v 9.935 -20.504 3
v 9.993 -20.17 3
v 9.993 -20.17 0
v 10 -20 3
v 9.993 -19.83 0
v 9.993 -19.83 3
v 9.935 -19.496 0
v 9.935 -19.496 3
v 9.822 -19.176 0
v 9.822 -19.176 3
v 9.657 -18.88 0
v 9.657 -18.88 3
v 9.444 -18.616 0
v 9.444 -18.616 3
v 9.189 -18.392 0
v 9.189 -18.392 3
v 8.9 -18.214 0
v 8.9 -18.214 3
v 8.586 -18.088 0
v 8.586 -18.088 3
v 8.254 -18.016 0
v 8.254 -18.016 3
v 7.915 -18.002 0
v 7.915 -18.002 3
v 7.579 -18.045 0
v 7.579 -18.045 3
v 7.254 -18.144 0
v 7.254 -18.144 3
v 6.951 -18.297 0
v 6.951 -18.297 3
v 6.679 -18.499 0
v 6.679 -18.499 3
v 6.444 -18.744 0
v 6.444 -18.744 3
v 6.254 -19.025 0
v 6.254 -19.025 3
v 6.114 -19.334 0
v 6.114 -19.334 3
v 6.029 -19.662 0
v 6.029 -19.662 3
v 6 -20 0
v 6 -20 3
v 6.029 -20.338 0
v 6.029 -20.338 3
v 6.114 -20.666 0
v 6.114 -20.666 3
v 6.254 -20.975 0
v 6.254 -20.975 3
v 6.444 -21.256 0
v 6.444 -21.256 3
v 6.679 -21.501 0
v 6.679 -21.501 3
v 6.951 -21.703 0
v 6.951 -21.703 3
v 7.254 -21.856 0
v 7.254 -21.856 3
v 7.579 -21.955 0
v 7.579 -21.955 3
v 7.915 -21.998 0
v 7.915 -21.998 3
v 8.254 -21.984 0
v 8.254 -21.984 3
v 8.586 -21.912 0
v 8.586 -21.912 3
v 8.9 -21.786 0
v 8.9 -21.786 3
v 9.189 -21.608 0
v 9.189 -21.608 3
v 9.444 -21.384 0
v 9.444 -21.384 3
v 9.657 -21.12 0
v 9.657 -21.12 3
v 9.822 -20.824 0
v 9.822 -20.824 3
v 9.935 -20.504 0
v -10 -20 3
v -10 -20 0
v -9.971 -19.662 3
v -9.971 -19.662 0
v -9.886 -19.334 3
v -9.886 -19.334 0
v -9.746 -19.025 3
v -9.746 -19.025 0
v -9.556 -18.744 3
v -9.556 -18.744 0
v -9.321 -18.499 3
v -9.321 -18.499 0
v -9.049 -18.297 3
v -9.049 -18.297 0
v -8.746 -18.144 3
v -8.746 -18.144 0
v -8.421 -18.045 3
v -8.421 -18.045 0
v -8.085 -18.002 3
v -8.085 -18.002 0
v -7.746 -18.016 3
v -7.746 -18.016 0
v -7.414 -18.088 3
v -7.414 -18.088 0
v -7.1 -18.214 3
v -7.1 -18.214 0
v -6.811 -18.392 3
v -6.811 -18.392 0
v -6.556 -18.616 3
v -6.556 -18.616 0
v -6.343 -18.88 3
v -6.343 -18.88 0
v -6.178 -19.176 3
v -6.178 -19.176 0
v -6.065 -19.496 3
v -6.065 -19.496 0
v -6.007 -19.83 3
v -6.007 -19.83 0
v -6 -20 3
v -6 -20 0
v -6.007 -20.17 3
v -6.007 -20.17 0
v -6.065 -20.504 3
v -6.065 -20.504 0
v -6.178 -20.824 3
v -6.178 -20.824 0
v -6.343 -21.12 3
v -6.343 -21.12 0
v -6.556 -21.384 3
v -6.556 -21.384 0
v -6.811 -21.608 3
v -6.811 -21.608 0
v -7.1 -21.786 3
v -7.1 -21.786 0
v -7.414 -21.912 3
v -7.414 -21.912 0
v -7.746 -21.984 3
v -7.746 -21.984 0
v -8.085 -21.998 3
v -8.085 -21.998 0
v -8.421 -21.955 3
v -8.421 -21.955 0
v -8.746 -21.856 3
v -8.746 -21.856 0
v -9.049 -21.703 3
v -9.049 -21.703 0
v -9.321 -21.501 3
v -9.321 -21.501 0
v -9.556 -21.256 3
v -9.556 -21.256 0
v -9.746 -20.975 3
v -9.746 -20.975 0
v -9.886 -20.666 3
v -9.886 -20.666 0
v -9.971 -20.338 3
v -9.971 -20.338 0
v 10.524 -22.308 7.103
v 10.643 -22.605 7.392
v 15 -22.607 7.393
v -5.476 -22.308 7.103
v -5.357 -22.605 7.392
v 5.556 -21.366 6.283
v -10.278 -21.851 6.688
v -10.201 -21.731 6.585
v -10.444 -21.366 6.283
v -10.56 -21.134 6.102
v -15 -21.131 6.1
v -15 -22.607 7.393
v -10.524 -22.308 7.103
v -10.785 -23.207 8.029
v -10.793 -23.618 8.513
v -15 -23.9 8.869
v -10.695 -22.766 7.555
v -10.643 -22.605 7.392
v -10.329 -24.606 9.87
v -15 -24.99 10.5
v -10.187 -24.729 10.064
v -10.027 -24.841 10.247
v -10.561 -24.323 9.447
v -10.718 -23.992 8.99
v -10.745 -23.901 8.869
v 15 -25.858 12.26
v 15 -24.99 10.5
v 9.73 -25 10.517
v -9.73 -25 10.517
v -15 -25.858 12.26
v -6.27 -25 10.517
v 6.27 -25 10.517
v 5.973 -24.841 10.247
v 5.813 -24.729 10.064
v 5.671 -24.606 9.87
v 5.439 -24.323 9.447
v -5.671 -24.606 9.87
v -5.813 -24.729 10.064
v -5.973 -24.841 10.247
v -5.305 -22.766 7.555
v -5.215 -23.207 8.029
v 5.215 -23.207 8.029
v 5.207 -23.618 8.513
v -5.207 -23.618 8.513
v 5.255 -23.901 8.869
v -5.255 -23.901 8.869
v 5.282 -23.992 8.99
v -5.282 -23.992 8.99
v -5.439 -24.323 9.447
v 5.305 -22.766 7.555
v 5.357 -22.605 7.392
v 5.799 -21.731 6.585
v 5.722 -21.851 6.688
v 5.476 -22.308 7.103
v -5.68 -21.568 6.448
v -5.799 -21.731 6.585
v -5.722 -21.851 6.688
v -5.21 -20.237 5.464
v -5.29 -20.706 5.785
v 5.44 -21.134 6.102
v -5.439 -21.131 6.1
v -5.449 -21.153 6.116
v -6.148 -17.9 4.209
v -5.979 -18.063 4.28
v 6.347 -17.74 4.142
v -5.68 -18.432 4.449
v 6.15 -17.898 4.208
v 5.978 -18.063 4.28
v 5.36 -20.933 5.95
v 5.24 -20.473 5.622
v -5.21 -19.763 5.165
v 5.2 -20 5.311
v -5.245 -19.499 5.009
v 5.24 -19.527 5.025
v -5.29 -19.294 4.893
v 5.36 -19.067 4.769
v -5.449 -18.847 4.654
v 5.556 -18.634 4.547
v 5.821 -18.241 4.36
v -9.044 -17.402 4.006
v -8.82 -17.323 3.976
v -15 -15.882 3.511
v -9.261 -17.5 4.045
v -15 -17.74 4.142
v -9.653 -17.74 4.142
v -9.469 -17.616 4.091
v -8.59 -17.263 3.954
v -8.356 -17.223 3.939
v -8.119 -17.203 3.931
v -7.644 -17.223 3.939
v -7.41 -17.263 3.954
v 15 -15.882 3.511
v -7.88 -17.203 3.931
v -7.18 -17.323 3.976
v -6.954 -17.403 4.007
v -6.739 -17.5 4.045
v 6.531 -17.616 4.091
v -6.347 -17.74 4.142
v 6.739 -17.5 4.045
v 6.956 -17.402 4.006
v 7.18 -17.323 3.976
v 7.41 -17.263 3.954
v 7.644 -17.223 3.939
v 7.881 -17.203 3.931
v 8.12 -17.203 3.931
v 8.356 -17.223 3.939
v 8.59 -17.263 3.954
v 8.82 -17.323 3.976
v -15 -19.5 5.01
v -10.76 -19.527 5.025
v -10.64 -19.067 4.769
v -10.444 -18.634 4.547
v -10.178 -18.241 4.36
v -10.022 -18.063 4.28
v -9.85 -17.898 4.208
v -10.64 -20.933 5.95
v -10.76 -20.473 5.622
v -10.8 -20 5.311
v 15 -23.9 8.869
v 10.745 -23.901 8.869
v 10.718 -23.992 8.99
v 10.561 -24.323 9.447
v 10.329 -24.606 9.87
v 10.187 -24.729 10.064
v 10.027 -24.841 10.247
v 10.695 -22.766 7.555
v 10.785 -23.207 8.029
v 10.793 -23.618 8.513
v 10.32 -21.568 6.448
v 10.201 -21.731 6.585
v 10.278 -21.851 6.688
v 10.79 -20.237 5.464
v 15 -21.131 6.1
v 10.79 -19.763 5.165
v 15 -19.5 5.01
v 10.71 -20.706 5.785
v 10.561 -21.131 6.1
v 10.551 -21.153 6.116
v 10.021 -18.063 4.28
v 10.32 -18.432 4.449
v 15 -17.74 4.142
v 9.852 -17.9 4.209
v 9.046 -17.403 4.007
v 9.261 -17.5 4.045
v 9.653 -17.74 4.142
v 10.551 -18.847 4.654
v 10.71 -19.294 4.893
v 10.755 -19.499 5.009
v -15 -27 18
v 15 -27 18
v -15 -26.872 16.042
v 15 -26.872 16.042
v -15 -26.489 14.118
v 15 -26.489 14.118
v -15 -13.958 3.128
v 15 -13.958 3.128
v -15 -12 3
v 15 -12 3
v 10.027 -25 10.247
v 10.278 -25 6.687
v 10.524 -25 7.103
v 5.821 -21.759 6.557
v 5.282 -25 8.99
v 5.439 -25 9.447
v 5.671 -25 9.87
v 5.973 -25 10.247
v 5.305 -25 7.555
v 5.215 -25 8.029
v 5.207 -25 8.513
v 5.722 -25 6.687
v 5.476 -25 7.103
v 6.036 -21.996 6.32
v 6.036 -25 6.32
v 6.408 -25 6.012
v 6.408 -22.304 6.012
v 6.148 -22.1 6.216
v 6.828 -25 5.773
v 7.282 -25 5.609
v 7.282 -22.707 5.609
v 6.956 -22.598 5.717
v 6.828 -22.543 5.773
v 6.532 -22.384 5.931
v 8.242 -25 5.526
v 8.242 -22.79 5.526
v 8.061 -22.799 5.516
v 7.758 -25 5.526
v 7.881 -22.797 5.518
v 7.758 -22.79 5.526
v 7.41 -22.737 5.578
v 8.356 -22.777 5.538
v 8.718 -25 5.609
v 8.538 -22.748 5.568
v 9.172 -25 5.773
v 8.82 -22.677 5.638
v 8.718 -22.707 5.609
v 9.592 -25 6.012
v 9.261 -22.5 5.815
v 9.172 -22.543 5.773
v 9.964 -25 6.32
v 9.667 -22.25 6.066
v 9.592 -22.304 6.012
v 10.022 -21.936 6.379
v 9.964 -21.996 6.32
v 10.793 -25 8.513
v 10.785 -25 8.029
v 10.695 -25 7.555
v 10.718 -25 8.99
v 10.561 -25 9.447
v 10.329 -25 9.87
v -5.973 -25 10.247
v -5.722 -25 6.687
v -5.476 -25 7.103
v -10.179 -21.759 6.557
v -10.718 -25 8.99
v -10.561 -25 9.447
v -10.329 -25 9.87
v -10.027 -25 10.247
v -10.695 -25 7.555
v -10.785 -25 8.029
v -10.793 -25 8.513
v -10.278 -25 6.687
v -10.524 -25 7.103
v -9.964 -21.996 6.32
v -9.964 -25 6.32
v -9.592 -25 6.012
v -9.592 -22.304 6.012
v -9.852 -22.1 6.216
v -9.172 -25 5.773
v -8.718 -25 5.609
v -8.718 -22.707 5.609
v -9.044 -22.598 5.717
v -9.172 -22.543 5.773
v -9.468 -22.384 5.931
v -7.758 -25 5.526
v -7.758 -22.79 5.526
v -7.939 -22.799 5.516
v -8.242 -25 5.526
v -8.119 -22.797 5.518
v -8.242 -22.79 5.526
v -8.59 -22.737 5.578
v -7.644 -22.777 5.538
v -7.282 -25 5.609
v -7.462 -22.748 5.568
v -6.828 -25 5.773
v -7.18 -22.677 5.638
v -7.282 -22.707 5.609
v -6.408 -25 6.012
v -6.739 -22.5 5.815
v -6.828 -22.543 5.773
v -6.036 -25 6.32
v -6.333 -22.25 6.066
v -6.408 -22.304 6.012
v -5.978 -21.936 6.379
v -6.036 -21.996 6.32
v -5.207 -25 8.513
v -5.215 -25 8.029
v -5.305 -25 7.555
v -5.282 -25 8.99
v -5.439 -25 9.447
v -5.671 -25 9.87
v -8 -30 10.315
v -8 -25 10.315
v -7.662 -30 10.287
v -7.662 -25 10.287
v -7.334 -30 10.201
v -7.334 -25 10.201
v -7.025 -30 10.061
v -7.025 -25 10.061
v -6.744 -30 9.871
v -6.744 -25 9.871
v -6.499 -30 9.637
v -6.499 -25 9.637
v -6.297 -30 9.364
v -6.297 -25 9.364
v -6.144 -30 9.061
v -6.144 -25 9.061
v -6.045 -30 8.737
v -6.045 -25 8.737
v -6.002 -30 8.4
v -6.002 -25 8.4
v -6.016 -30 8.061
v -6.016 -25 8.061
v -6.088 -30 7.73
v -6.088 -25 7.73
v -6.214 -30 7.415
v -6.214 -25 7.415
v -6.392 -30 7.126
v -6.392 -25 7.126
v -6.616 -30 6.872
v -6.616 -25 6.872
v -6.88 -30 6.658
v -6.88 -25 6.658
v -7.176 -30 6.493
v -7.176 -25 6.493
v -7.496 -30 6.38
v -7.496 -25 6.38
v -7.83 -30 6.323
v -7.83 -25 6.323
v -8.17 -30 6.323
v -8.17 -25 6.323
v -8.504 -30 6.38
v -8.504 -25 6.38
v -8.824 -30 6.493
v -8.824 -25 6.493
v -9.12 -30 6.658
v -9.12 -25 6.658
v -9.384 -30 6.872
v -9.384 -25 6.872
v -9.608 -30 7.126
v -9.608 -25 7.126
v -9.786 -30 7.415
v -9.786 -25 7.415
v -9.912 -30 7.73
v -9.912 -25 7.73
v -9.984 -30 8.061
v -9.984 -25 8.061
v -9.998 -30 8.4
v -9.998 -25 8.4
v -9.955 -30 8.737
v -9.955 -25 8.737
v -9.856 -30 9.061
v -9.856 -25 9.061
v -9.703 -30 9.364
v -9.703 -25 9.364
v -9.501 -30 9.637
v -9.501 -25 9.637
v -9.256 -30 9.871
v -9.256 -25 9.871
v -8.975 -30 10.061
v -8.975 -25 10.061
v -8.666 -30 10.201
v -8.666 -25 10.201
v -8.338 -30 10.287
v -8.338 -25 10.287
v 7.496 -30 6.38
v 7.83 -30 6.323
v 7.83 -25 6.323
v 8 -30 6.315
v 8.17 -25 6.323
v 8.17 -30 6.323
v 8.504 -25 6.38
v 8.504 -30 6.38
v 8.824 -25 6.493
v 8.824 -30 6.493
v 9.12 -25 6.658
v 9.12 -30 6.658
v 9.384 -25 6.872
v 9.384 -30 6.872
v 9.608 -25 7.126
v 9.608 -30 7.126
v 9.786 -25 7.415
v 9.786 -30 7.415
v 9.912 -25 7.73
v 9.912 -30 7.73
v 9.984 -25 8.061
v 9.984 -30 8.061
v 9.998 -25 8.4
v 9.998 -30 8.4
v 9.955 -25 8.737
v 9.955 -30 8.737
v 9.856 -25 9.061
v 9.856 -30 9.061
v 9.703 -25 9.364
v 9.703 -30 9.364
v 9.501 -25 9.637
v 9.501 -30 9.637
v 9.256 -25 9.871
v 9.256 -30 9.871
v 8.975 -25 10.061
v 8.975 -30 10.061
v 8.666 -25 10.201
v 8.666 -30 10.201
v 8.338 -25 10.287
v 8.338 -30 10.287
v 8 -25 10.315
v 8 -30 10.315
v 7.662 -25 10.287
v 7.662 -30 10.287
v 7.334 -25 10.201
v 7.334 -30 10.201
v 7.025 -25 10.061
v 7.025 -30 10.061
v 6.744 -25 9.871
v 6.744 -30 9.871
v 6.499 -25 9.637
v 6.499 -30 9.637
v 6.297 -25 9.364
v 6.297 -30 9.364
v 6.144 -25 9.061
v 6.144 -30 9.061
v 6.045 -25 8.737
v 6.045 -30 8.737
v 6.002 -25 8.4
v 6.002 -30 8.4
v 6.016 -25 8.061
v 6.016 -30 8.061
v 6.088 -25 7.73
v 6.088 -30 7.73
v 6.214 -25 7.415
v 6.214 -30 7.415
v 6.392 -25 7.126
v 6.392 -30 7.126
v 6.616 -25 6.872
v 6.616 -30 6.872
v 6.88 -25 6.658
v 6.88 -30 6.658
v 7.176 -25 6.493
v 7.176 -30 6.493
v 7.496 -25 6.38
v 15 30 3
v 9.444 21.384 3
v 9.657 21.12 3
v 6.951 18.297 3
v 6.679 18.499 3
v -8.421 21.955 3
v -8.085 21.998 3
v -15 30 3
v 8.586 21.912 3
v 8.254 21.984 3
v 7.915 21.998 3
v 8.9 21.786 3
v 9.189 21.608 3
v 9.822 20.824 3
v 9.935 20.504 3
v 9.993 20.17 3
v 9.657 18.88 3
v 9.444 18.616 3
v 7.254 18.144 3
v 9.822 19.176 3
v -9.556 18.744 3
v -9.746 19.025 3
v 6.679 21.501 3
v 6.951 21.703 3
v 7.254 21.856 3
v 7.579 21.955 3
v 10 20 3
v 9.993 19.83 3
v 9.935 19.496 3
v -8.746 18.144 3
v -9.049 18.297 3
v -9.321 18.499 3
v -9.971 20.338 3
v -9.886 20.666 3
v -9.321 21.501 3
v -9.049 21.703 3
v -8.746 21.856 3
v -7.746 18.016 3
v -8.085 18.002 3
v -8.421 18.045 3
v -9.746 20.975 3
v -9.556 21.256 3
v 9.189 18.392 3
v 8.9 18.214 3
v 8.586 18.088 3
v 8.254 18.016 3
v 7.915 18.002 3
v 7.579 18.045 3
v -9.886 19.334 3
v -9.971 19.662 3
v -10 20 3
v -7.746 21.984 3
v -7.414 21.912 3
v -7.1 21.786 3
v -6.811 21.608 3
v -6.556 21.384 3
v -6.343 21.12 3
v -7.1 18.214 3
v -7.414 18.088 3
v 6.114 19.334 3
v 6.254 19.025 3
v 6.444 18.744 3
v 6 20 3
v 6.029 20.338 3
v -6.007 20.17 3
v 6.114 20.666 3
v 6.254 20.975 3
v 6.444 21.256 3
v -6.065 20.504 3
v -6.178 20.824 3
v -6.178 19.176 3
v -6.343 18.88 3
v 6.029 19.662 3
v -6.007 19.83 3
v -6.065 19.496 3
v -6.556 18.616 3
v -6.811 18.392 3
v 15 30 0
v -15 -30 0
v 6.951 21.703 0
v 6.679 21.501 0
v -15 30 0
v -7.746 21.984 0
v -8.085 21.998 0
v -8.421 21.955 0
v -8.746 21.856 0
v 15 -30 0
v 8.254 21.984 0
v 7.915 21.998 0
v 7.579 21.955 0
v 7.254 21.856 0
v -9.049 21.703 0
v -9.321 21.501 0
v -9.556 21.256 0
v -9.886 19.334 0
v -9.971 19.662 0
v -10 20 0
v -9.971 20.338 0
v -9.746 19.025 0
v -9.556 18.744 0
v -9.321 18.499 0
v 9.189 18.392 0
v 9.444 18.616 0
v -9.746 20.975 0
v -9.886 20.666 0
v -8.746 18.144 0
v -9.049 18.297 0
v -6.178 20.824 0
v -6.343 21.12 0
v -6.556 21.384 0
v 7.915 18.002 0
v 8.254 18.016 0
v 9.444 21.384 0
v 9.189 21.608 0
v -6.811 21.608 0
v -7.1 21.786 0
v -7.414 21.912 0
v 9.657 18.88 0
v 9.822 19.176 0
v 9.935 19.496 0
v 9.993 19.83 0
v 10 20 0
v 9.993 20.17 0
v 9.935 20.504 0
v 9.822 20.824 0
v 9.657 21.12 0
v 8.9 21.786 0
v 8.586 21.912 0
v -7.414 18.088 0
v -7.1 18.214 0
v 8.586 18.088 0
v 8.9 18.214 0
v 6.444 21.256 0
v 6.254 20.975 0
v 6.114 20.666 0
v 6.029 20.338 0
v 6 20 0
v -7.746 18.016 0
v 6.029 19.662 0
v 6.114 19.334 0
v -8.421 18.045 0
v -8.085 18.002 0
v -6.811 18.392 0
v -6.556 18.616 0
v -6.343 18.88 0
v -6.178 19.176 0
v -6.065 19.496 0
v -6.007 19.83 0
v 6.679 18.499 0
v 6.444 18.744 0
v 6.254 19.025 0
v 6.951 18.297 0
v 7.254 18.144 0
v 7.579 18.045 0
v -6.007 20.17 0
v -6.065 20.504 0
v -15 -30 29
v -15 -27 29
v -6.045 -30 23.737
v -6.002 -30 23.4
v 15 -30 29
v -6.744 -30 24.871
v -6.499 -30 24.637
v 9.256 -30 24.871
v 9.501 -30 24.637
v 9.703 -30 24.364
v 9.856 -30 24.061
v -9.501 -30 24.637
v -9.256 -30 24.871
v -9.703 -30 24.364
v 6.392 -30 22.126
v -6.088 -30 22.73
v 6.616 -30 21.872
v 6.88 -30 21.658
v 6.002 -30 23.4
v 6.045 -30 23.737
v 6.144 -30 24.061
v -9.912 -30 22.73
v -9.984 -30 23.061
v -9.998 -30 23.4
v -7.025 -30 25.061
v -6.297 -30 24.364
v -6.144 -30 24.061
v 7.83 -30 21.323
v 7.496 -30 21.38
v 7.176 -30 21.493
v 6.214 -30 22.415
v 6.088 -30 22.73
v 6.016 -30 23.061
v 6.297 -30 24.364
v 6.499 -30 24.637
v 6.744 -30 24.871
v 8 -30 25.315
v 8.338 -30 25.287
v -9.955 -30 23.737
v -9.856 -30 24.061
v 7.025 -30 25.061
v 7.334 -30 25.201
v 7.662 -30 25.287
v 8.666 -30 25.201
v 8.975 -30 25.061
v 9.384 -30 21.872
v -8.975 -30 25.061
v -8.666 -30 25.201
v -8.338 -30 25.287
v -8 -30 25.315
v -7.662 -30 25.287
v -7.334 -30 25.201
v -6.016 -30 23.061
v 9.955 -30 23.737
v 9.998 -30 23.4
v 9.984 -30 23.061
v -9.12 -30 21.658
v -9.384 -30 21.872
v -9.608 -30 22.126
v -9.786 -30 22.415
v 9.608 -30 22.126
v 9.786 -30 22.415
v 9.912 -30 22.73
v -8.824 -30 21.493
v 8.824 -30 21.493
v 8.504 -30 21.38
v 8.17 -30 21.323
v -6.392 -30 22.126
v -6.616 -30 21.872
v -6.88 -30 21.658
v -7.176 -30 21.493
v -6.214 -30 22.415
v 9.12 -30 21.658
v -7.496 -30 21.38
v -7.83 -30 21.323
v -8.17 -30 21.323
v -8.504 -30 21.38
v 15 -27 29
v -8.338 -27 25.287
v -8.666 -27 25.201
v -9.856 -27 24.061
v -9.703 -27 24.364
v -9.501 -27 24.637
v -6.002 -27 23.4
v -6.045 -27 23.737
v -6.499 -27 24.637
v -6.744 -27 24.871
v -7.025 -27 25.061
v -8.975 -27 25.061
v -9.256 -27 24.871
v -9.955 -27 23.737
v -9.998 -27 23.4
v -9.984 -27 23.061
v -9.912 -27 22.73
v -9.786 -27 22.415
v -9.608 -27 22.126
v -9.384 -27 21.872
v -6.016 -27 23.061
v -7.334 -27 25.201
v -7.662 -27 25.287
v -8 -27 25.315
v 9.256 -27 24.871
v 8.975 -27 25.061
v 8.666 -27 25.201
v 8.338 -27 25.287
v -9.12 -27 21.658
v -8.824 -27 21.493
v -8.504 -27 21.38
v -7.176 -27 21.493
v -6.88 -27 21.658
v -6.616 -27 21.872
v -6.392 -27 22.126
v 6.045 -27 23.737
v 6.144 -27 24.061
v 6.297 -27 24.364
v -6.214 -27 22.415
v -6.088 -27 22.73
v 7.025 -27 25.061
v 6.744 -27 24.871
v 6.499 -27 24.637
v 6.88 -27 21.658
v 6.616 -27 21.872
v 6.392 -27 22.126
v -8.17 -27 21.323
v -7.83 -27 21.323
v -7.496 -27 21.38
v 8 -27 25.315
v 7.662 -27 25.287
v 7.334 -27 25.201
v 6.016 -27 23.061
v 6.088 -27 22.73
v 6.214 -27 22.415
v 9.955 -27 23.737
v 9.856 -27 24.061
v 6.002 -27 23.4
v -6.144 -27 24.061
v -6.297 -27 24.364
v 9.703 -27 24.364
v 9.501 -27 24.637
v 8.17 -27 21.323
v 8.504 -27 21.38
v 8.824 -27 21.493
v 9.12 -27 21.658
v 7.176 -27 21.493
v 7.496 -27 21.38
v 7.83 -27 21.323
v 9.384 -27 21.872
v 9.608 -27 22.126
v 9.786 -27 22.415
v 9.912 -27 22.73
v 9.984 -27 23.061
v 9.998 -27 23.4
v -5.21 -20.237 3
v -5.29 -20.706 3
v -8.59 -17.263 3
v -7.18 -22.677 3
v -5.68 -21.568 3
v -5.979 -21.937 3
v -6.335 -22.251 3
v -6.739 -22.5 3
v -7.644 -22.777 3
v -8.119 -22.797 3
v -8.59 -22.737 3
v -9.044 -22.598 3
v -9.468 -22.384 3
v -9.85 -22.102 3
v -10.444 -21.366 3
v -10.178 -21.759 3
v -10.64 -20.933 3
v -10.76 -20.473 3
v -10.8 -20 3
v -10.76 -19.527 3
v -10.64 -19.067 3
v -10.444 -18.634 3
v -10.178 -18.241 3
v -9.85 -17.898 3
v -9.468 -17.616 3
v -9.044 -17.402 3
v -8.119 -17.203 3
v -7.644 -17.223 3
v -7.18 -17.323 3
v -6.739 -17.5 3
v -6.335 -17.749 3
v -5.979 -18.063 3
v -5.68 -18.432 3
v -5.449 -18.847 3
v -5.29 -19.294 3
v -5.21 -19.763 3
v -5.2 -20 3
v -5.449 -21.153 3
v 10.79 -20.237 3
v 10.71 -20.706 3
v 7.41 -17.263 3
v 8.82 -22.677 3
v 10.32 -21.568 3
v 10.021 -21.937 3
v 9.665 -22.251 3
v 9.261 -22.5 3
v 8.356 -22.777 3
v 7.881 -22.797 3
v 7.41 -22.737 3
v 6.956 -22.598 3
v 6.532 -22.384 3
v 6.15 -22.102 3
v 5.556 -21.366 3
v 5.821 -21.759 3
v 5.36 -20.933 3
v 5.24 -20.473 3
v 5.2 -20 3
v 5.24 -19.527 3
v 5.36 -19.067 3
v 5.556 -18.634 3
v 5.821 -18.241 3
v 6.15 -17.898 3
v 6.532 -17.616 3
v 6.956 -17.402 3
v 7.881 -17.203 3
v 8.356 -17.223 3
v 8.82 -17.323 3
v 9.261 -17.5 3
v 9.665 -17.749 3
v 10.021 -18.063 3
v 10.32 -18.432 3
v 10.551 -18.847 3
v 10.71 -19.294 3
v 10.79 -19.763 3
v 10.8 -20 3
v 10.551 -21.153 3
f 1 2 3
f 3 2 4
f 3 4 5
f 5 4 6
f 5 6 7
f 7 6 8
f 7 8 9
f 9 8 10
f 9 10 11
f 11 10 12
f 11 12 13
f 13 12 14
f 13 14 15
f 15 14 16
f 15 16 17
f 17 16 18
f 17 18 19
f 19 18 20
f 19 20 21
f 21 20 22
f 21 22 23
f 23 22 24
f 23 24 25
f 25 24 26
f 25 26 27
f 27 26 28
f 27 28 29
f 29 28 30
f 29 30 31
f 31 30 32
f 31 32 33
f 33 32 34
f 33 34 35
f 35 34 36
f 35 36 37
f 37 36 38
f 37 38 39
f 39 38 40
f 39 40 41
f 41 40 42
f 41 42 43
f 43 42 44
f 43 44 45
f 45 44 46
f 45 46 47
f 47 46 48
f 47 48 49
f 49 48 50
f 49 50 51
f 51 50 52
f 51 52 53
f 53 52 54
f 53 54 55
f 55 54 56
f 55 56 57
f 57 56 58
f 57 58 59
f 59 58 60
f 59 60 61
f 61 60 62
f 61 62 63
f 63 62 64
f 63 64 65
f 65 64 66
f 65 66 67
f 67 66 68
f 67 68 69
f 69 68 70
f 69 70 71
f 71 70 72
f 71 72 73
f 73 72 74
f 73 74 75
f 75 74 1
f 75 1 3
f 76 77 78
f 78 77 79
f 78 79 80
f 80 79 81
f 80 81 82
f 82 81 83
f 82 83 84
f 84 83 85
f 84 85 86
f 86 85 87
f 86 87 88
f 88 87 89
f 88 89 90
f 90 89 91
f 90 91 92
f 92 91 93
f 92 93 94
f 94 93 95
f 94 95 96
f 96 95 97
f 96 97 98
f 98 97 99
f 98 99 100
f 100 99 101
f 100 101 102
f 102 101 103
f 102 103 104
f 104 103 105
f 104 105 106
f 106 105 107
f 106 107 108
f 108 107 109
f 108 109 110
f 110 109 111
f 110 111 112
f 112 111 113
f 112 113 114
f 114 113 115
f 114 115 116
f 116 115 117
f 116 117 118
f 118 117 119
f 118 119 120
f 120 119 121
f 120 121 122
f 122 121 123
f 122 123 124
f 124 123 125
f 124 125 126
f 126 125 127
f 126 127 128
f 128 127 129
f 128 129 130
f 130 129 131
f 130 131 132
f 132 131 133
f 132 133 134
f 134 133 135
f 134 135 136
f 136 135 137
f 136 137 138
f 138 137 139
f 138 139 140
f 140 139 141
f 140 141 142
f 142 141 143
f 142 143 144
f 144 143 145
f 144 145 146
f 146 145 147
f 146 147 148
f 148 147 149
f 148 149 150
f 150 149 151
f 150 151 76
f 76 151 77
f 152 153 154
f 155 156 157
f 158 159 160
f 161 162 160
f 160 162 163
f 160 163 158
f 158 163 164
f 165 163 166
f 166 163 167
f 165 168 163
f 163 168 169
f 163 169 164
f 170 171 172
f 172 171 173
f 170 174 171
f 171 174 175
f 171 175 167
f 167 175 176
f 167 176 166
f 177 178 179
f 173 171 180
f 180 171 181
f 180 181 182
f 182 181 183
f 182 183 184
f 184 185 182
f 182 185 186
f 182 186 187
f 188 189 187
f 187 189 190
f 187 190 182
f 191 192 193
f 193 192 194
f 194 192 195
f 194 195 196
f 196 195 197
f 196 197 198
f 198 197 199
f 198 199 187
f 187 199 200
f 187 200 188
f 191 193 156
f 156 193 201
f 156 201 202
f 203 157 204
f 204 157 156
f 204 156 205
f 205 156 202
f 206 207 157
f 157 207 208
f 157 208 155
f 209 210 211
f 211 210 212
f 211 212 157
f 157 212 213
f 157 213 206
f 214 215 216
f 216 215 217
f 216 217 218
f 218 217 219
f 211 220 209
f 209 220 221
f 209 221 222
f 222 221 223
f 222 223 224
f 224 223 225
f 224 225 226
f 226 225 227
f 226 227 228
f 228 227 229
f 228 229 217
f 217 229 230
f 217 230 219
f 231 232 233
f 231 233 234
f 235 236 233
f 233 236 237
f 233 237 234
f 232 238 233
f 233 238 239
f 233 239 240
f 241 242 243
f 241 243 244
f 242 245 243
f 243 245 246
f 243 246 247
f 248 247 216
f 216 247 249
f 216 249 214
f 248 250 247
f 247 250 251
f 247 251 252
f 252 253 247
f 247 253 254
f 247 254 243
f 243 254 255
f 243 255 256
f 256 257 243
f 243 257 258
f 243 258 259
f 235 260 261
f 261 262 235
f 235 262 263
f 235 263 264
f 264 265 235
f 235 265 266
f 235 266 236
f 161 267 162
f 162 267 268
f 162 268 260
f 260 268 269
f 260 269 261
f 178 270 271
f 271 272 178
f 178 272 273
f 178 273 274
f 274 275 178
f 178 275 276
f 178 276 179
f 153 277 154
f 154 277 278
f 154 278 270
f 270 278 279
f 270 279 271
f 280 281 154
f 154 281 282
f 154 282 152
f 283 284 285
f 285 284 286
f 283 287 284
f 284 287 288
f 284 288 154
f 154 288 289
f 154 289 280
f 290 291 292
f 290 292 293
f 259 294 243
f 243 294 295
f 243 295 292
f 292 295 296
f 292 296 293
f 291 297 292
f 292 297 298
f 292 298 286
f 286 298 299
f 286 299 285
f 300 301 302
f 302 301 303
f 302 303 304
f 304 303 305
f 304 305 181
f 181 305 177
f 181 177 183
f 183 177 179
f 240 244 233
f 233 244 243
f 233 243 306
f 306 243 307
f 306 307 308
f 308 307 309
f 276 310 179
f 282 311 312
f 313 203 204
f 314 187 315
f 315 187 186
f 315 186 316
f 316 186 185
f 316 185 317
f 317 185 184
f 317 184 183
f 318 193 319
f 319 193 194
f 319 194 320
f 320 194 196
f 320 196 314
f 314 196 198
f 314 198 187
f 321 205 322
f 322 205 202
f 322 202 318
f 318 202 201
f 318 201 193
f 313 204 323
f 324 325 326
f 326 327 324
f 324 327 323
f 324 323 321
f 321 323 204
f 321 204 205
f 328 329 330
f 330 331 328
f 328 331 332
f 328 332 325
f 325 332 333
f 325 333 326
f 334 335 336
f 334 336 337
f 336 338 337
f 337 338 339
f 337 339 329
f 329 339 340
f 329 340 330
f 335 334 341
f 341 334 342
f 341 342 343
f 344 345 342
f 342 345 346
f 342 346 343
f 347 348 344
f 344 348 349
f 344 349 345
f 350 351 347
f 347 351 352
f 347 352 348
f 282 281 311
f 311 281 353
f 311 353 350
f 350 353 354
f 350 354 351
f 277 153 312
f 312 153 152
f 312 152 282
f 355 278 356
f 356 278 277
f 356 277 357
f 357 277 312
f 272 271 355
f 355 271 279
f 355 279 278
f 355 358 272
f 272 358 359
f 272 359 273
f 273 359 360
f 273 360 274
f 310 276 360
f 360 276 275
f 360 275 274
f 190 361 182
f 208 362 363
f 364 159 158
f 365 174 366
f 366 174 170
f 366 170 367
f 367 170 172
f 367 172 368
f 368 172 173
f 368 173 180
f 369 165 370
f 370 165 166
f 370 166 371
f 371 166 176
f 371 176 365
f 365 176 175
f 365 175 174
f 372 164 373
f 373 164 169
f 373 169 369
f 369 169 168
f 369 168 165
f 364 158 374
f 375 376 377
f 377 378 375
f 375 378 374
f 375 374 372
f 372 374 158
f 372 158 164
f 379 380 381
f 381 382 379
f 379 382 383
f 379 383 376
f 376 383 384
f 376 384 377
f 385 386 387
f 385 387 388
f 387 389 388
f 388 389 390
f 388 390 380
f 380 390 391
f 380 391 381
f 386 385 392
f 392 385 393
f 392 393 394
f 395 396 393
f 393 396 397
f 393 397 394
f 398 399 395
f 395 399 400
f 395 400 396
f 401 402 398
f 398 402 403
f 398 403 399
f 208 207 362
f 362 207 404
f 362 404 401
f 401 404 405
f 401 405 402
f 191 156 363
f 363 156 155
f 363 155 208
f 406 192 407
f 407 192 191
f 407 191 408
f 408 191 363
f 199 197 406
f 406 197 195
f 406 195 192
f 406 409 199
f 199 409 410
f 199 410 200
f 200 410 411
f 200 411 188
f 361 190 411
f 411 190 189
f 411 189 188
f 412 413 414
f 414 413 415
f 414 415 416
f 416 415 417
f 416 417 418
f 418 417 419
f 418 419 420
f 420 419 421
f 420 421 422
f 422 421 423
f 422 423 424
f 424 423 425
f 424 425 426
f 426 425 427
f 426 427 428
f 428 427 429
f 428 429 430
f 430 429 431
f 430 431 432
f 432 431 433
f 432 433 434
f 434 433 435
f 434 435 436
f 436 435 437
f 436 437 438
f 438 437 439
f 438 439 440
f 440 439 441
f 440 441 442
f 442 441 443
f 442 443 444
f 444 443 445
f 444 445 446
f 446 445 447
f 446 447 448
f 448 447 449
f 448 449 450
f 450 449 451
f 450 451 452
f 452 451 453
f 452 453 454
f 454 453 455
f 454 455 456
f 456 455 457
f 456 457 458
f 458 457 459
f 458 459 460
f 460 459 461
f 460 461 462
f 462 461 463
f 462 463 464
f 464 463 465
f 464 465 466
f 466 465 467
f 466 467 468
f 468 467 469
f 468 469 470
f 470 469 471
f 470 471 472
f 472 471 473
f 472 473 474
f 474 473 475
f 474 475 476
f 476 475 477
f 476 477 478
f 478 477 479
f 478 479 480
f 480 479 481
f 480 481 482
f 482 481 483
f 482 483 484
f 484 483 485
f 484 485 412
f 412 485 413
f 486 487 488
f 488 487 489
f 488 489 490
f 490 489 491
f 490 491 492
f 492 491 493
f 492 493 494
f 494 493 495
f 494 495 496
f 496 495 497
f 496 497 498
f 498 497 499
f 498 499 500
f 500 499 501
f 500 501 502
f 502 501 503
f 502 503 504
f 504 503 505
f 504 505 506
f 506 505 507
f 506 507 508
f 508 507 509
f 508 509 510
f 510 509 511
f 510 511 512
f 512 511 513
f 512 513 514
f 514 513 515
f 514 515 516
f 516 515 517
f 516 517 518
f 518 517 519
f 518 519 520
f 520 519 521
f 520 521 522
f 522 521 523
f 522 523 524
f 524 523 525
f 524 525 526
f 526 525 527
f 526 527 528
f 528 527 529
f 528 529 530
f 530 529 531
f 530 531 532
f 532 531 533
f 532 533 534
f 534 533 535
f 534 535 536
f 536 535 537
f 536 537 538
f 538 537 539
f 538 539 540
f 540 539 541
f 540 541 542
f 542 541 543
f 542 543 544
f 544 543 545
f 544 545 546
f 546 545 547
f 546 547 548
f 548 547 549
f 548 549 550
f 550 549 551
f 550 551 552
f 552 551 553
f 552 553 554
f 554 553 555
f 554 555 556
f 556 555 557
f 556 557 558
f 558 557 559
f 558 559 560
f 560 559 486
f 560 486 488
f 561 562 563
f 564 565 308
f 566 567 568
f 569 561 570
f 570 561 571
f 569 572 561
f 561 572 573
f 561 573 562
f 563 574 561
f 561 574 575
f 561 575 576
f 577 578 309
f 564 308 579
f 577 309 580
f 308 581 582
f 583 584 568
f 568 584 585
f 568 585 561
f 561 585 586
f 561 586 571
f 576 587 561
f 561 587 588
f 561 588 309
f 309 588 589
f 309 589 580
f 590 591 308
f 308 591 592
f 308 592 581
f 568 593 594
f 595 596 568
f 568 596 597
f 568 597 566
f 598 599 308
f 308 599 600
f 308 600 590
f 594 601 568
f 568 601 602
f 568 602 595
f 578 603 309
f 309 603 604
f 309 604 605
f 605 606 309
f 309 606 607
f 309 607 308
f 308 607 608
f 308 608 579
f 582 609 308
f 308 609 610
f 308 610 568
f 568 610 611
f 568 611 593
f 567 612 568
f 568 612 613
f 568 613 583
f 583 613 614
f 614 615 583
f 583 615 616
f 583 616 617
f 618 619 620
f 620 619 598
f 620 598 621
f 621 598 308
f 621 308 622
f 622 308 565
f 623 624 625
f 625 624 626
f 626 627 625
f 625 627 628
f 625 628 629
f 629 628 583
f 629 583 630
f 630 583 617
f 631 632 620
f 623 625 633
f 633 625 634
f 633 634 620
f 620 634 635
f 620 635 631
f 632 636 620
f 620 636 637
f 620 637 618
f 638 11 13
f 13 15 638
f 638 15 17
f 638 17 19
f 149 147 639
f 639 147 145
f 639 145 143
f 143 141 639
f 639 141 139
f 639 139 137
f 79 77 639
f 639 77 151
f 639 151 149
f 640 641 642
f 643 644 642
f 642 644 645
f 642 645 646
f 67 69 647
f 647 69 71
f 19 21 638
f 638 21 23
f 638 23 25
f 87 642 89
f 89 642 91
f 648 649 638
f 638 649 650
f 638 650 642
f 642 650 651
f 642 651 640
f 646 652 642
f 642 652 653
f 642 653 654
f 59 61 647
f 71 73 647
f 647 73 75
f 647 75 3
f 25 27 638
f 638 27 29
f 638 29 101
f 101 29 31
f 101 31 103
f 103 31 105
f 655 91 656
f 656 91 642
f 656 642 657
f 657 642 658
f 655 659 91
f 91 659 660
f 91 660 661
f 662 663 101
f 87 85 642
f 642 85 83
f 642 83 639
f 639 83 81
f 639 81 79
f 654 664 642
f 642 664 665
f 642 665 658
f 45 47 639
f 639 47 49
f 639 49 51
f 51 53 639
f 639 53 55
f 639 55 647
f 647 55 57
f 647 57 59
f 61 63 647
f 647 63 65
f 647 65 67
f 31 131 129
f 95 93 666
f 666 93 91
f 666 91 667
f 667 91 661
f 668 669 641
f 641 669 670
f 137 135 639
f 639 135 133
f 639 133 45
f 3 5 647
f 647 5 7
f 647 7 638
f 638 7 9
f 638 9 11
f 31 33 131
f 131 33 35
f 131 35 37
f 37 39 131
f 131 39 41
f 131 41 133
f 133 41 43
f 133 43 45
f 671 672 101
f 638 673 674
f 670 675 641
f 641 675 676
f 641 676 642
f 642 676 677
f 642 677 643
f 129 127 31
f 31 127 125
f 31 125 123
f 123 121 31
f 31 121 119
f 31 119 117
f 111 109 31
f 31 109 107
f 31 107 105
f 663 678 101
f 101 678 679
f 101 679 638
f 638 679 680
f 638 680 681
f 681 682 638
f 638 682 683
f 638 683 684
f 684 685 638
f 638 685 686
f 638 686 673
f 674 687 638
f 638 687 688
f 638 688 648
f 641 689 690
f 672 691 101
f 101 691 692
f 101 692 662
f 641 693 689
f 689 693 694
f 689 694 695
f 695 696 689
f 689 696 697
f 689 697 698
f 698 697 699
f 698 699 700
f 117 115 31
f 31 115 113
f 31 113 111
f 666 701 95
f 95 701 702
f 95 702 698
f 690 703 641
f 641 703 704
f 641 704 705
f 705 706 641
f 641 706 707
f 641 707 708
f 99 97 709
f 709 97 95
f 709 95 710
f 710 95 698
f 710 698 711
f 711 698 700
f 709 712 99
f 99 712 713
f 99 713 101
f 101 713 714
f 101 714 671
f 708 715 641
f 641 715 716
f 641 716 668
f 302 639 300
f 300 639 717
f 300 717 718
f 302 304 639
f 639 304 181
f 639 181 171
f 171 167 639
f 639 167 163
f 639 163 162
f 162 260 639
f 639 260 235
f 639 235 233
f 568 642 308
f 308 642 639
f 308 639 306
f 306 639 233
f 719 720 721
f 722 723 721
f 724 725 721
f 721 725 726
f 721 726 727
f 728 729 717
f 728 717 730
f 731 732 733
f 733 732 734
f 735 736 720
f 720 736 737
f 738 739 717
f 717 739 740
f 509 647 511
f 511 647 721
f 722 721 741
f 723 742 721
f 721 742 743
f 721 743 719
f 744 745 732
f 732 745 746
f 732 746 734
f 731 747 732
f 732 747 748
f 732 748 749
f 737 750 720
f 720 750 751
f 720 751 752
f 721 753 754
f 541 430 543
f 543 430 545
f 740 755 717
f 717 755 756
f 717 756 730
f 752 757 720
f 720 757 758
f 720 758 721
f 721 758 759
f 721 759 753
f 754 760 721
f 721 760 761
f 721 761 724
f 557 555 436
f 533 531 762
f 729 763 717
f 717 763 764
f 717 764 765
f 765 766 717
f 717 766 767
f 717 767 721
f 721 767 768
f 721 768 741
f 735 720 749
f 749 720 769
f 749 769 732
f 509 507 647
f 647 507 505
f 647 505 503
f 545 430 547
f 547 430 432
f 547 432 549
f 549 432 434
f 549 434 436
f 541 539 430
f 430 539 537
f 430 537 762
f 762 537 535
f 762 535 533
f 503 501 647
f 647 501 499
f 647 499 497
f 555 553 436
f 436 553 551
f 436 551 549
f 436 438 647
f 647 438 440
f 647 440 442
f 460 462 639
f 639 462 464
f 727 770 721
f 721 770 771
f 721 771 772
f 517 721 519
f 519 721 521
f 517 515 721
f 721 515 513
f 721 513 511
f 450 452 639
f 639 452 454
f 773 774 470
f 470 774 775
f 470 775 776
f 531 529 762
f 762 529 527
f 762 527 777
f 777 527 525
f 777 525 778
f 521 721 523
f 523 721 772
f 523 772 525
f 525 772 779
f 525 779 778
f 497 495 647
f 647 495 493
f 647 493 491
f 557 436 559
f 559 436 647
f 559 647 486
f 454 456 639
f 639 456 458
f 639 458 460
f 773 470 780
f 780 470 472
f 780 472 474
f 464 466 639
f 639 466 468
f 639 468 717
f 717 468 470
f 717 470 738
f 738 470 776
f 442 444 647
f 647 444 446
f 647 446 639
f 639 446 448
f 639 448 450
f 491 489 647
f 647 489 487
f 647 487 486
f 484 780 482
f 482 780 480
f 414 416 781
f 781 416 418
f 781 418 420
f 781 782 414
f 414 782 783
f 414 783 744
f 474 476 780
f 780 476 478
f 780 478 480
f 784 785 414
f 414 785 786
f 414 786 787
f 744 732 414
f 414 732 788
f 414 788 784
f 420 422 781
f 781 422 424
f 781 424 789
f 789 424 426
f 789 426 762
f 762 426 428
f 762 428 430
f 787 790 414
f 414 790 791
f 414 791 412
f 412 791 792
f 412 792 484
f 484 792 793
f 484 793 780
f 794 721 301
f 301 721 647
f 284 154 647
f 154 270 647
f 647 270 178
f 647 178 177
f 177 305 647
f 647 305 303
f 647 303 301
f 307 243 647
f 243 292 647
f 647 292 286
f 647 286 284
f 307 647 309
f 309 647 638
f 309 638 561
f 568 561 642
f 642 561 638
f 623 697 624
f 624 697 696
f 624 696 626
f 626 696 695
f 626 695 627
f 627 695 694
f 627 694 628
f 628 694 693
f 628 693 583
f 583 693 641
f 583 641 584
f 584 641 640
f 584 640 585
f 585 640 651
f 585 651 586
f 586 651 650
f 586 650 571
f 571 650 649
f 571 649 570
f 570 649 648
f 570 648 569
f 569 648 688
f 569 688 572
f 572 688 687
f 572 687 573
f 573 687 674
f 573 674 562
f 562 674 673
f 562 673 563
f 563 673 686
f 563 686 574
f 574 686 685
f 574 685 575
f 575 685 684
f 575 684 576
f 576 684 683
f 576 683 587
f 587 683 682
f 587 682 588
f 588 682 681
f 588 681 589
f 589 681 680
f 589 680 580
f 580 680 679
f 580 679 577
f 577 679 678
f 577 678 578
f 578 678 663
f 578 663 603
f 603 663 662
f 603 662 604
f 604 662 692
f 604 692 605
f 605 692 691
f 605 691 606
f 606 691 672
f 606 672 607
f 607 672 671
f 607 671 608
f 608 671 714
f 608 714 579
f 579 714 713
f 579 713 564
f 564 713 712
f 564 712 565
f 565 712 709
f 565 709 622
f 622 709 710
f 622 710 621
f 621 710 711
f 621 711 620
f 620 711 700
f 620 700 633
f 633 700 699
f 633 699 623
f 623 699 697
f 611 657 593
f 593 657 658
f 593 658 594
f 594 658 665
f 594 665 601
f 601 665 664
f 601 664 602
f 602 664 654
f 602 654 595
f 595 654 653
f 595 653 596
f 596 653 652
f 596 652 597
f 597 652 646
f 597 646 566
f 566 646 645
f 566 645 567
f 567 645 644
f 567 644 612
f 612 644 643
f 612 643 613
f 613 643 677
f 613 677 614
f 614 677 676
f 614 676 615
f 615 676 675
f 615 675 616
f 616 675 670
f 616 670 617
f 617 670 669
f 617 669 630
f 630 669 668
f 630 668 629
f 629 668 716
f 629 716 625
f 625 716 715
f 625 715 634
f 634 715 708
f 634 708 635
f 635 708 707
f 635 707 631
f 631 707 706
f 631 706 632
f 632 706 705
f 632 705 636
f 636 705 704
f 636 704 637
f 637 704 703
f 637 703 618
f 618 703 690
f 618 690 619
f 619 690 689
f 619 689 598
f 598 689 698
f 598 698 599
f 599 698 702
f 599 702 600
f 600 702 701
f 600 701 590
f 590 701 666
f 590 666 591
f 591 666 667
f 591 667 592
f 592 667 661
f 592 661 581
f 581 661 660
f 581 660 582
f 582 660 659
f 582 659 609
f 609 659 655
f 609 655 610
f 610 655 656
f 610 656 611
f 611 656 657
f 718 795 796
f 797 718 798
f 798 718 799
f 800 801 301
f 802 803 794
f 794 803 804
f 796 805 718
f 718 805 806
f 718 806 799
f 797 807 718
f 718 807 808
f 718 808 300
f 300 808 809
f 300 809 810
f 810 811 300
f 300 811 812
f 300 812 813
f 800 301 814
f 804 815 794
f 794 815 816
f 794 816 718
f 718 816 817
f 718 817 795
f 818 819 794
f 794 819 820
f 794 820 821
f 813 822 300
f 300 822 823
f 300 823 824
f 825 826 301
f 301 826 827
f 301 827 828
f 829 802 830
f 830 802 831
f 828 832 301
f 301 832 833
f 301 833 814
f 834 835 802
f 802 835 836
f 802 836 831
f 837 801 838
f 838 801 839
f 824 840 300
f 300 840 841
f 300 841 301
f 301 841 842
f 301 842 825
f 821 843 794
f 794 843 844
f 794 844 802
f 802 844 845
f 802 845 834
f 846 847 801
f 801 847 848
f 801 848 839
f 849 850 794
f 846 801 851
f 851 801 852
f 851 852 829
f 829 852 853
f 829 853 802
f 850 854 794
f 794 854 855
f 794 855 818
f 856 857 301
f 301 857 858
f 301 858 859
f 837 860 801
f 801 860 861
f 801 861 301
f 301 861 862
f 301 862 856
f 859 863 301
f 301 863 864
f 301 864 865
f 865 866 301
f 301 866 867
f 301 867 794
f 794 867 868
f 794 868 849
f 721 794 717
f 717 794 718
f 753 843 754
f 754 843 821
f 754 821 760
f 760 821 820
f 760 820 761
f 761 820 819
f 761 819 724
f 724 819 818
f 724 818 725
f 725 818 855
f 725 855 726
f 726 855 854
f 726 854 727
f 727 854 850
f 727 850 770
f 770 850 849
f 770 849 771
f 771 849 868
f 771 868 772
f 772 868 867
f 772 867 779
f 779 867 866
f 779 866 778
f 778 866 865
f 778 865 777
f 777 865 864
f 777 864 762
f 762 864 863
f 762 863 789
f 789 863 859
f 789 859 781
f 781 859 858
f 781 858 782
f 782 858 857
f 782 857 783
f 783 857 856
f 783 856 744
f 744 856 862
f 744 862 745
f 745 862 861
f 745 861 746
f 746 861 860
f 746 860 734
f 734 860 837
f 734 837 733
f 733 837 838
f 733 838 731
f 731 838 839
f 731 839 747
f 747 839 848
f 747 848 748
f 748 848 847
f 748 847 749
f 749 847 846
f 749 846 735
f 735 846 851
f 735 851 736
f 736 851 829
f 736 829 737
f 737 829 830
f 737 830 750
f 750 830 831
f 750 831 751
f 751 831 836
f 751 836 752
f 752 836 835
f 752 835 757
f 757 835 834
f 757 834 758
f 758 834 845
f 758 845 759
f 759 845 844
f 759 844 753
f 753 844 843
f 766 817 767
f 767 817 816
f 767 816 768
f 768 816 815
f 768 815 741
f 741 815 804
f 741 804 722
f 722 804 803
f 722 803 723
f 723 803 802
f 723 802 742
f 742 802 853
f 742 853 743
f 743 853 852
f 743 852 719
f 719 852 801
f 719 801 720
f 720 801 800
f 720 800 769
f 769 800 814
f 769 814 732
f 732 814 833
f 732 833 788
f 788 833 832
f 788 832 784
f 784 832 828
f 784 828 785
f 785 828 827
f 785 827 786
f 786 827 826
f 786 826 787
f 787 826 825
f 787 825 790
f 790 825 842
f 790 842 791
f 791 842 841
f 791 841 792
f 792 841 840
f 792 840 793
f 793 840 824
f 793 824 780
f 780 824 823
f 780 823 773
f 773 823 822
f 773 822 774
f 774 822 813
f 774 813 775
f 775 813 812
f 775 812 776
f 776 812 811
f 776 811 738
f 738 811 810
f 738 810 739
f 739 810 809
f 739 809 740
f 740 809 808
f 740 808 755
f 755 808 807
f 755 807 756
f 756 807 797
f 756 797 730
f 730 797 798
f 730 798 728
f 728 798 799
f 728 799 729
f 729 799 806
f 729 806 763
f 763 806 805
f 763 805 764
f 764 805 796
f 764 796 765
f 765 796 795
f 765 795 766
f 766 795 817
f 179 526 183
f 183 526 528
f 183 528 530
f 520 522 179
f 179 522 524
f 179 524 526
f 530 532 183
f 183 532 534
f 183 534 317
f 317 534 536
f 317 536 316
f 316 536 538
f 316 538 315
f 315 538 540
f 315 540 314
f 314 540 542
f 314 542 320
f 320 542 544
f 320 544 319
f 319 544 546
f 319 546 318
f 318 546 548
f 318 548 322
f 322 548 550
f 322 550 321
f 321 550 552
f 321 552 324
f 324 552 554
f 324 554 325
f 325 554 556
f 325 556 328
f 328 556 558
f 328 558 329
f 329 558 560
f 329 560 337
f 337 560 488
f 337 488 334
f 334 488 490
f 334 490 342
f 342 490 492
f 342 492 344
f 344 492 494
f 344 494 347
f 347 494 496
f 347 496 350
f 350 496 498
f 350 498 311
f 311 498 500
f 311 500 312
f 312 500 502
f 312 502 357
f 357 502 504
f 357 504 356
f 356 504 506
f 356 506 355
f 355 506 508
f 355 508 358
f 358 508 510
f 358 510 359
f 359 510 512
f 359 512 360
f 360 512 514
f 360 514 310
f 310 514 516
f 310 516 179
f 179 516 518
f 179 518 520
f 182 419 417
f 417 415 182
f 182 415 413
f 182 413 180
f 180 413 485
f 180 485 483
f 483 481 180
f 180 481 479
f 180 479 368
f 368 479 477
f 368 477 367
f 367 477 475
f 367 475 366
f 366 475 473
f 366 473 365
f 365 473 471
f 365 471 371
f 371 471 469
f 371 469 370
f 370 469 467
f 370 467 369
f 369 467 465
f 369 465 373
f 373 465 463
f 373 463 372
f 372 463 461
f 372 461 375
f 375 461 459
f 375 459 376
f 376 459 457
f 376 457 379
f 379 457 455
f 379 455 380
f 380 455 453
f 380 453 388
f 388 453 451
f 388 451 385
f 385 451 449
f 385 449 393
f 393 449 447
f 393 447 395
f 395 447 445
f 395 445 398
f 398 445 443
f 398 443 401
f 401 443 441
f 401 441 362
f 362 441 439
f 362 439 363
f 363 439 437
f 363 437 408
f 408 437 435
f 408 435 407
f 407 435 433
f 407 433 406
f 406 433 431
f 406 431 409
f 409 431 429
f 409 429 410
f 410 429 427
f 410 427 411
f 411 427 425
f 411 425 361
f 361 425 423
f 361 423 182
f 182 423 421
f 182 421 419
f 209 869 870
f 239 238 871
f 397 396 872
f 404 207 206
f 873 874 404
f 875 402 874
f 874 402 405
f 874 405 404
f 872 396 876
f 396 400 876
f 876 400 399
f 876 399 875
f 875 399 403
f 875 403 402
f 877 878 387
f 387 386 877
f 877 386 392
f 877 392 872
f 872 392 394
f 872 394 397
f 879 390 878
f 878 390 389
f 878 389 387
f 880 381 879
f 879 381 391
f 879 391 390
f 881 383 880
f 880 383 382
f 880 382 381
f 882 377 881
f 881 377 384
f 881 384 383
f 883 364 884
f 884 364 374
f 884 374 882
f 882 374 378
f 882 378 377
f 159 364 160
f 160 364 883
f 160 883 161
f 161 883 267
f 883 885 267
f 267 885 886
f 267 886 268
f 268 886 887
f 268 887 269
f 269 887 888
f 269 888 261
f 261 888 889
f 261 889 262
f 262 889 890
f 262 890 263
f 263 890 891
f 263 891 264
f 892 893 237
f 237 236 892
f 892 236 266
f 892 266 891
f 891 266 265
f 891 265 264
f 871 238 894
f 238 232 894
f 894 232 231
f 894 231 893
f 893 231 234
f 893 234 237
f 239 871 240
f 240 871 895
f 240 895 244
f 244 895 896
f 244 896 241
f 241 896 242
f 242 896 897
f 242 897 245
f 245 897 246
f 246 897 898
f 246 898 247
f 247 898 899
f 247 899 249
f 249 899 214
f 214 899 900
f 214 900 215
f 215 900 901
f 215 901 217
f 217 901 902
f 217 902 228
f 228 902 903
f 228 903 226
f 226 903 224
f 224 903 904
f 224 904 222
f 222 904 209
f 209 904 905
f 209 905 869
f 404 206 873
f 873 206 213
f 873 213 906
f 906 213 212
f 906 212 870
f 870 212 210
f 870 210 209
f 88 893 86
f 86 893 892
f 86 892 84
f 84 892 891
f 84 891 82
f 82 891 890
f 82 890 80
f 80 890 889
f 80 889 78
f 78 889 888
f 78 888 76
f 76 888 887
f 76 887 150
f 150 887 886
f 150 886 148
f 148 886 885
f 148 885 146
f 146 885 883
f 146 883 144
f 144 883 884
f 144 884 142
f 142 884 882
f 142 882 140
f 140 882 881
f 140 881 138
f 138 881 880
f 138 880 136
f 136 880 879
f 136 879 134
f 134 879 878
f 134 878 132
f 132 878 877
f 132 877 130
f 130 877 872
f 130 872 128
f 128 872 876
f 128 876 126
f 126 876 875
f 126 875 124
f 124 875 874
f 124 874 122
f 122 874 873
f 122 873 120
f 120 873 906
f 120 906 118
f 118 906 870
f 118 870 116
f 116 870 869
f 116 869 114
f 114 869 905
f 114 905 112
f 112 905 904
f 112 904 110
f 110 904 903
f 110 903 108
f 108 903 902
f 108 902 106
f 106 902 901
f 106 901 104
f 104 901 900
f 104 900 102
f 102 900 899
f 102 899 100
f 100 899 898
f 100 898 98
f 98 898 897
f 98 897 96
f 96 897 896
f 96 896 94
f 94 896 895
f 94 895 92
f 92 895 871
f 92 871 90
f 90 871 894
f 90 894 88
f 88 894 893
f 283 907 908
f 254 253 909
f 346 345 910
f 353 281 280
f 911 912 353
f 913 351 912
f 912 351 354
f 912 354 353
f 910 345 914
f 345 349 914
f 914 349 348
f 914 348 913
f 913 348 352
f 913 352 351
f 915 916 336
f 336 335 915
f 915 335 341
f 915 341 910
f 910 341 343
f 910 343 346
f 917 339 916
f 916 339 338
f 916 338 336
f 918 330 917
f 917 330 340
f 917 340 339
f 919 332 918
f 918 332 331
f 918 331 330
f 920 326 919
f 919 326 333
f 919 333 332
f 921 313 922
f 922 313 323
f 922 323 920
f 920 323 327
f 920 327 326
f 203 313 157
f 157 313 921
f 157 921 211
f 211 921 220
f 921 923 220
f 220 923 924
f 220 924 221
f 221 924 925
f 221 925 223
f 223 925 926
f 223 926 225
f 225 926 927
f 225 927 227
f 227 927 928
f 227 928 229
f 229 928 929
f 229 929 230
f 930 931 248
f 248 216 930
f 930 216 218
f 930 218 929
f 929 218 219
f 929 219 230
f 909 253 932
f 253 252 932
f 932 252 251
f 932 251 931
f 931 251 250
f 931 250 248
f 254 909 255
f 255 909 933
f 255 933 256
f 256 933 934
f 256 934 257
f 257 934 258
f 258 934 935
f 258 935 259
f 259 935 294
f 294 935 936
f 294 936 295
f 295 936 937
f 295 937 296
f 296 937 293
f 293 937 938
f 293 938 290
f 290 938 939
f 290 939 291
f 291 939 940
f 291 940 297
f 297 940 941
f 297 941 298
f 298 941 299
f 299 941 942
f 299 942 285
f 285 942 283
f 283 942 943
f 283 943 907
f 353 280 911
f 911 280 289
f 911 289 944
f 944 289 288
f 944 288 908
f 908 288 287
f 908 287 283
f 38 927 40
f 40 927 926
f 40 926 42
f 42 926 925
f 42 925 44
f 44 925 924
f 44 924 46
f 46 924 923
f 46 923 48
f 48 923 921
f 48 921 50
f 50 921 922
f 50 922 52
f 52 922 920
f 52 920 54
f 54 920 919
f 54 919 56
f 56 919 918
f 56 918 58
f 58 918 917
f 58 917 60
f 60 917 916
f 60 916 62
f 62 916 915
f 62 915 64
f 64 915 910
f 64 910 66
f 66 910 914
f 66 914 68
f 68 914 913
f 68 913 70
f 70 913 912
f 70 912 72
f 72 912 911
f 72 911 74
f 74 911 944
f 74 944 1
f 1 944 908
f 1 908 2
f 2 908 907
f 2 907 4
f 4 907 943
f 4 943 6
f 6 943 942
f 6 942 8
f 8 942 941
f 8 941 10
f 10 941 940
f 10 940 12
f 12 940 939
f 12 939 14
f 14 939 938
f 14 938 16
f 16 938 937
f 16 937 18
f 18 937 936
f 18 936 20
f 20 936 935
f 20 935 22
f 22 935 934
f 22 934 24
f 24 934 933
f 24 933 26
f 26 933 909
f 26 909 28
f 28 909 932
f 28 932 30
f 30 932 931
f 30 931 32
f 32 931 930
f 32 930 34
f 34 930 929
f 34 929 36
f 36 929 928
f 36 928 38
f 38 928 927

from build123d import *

# Parameters (mm, degrees)
SKETCH1_W           = 30
SKETCH1_H           = 60
SKETCH1_R           = 2
BOSS_EXTRUDE1_DEPTH = 3
SKETCH2_W           = 26
SKETCH2_H           = 3
BOSS_EXTRUDE2_DEPTH = 15
SKETCH3_R           = 2
CUT_EXTRUDE1_DEPTH  = 66.6886596
FILLET1_R           = 15
CUT_EXTRUDE2_START  = 2
SKETCH4_R           = 2.8
CUT_EXTRUDE2_DEPTH  = 64.688659622
SKETCH5_R           = 2.8
CUT_EXTRUDE3_DEPTH  = 43.438190383


with BuildPart() as part:
    # Sketch1 → Boss-Extrude1 (new body)
    with BuildSketch(Plane.XY):
        Rectangle(SKETCH1_W, SKETCH1_H)
        with Locations((8, 20)):
            Circle(SKETCH1_R, mode=Mode.SUBTRACT)
        with Locations(Location((8, -20, 0), (0, 0, 180))):
            Circle(SKETCH1_R, mode=Mode.SUBTRACT)
        with Locations(Location((-8, 20, 0), (0, 0, 180))):
            Circle(SKETCH1_R, mode=Mode.SUBTRACT)
        with Locations((-8, -20)):
            Circle(SKETCH1_R, mode=Mode.SUBTRACT)
    extrude(amount=BOSS_EXTRUDE1_DEPTH)

    # Sketch2 → Boss-Extrude2 (add, symmetric)
    with BuildSketch(Plane(origin=(0, 0, 0), x_dir=(0, 0, -1), z_dir=(1, 0, 0))):
        with Locations((-16, -28.5)):
            Rectangle(SKETCH2_W, SKETCH2_H)
    extrude(amount=BOSS_EXTRUDE2_DEPTH, both=True)

    # Sketch3 → Cut-Extrude1 (cut, through all)
    with BuildSketch(Plane(origin=(0, -27, 0), x_dir=(1, 0, 0), z_dir=(0, 1, 0))):
        with Locations(Location((-8, -8.31541538, 0), (0, 0, 270))):
            Circle(SKETCH3_R)
        with Locations(Location((8, -8.31541538, 0), (0, 0, 270))):
            Circle(SKETCH3_R)
        with Locations(Location((-8, -23.31541538, 0), (0, 0, 270))):
            Circle(SKETCH3_R)
        with Locations(Location((8, -23.31541538, 0), (0, 0, 270))):
            Circle(SKETCH3_R)
    extrude(amount=-CUT_EXTRUDE1_DEPTH, mode=Mode.SUBTRACT)

    # Fillet1
    # the kernel refuses this fillet: 15 mm, written as the material it adds along each edge
    with BuildSketch(Plane(origin=(-15, -27, 3), x_dir=(0, 1, 0), z_dir=(1, 0, 0))) as fillet1_piece_1_section:
        with BuildLine():
            CenterArc((FILLET1_R, FILLET1_R), FILLET1_R, 180, 90)
            Line((0, FILLET1_R), (0, 0))
            Line((0, 0), (FILLET1_R, 0))
        make_face()
    fillet1_piece_1 = extrude(amount=30, mode=Mode.PRIVATE)
    fillet1_piece_1 = fillet1_piece_1 - Plane(origin=(-8, -20, 6.3866805), x_dir=(1, 0, 0), z_dir=(0, 0, -1)) * Cylinder(2, 120, mode=Mode.PRIVATE)
    fillet1_piece_1 = fillet1_piece_1 - Plane(origin=(8, -20, 6.3866805), x_dir=(-1, 0, 0), z_dir=(0, 0, -1)) * Cylinder(2, 120, mode=Mode.PRIVATE)
    fillet1_piece_1 = fillet1_piece_1 - Plane(origin=(-8, -23.64475421, 8.31541538), x_dir=(0, 0, 1), z_dir=(0, 1, 0)) * Cylinder(2, 120, mode=Mode.PRIVATE)
    fillet1_piece_1 = fillet1_piece_1 - Plane(origin=(8, -23.64475421, 8.31541538), x_dir=(0, 0, 1), z_dir=(0, 1, 0)) * Cylinder(2, 120, mode=Mode.PRIVATE)
    add(fillet1_piece_1)

    # Sketch4 → Cut-Extrude2 (cut, through all)
    with BuildSketch(Plane(origin=(0, -27, 0), x_dir=(1, 0, 0), z_dir=(0, 1, 0)).offset(CUT_EXTRUDE2_START)):
        with Locations((-8, -8.31541538)):
            Circle(SKETCH4_R)
        with Locations((8, -8.31541538)):
            Circle(SKETCH4_R)
    extrude(amount=CUT_EXTRUDE2_DEPTH, mode=Mode.SUBTRACT)

    # Sketch5 → Cut-Extrude3 (cut, through all)
    with BuildSketch(Plane.XY.offset(3)):
        with Locations(Location((-8, -20, 0), (0, 0, 218.180965893))):
            Circle(SKETCH5_R)
        with Locations(Location((8, -20, 0), (0, 0, 218.180965893))):
            Circle(SKETCH5_R)
    extrude(amount=CUT_EXTRUDE3_DEPTH, mode=Mode.SUBTRACT)


solid = part.part
